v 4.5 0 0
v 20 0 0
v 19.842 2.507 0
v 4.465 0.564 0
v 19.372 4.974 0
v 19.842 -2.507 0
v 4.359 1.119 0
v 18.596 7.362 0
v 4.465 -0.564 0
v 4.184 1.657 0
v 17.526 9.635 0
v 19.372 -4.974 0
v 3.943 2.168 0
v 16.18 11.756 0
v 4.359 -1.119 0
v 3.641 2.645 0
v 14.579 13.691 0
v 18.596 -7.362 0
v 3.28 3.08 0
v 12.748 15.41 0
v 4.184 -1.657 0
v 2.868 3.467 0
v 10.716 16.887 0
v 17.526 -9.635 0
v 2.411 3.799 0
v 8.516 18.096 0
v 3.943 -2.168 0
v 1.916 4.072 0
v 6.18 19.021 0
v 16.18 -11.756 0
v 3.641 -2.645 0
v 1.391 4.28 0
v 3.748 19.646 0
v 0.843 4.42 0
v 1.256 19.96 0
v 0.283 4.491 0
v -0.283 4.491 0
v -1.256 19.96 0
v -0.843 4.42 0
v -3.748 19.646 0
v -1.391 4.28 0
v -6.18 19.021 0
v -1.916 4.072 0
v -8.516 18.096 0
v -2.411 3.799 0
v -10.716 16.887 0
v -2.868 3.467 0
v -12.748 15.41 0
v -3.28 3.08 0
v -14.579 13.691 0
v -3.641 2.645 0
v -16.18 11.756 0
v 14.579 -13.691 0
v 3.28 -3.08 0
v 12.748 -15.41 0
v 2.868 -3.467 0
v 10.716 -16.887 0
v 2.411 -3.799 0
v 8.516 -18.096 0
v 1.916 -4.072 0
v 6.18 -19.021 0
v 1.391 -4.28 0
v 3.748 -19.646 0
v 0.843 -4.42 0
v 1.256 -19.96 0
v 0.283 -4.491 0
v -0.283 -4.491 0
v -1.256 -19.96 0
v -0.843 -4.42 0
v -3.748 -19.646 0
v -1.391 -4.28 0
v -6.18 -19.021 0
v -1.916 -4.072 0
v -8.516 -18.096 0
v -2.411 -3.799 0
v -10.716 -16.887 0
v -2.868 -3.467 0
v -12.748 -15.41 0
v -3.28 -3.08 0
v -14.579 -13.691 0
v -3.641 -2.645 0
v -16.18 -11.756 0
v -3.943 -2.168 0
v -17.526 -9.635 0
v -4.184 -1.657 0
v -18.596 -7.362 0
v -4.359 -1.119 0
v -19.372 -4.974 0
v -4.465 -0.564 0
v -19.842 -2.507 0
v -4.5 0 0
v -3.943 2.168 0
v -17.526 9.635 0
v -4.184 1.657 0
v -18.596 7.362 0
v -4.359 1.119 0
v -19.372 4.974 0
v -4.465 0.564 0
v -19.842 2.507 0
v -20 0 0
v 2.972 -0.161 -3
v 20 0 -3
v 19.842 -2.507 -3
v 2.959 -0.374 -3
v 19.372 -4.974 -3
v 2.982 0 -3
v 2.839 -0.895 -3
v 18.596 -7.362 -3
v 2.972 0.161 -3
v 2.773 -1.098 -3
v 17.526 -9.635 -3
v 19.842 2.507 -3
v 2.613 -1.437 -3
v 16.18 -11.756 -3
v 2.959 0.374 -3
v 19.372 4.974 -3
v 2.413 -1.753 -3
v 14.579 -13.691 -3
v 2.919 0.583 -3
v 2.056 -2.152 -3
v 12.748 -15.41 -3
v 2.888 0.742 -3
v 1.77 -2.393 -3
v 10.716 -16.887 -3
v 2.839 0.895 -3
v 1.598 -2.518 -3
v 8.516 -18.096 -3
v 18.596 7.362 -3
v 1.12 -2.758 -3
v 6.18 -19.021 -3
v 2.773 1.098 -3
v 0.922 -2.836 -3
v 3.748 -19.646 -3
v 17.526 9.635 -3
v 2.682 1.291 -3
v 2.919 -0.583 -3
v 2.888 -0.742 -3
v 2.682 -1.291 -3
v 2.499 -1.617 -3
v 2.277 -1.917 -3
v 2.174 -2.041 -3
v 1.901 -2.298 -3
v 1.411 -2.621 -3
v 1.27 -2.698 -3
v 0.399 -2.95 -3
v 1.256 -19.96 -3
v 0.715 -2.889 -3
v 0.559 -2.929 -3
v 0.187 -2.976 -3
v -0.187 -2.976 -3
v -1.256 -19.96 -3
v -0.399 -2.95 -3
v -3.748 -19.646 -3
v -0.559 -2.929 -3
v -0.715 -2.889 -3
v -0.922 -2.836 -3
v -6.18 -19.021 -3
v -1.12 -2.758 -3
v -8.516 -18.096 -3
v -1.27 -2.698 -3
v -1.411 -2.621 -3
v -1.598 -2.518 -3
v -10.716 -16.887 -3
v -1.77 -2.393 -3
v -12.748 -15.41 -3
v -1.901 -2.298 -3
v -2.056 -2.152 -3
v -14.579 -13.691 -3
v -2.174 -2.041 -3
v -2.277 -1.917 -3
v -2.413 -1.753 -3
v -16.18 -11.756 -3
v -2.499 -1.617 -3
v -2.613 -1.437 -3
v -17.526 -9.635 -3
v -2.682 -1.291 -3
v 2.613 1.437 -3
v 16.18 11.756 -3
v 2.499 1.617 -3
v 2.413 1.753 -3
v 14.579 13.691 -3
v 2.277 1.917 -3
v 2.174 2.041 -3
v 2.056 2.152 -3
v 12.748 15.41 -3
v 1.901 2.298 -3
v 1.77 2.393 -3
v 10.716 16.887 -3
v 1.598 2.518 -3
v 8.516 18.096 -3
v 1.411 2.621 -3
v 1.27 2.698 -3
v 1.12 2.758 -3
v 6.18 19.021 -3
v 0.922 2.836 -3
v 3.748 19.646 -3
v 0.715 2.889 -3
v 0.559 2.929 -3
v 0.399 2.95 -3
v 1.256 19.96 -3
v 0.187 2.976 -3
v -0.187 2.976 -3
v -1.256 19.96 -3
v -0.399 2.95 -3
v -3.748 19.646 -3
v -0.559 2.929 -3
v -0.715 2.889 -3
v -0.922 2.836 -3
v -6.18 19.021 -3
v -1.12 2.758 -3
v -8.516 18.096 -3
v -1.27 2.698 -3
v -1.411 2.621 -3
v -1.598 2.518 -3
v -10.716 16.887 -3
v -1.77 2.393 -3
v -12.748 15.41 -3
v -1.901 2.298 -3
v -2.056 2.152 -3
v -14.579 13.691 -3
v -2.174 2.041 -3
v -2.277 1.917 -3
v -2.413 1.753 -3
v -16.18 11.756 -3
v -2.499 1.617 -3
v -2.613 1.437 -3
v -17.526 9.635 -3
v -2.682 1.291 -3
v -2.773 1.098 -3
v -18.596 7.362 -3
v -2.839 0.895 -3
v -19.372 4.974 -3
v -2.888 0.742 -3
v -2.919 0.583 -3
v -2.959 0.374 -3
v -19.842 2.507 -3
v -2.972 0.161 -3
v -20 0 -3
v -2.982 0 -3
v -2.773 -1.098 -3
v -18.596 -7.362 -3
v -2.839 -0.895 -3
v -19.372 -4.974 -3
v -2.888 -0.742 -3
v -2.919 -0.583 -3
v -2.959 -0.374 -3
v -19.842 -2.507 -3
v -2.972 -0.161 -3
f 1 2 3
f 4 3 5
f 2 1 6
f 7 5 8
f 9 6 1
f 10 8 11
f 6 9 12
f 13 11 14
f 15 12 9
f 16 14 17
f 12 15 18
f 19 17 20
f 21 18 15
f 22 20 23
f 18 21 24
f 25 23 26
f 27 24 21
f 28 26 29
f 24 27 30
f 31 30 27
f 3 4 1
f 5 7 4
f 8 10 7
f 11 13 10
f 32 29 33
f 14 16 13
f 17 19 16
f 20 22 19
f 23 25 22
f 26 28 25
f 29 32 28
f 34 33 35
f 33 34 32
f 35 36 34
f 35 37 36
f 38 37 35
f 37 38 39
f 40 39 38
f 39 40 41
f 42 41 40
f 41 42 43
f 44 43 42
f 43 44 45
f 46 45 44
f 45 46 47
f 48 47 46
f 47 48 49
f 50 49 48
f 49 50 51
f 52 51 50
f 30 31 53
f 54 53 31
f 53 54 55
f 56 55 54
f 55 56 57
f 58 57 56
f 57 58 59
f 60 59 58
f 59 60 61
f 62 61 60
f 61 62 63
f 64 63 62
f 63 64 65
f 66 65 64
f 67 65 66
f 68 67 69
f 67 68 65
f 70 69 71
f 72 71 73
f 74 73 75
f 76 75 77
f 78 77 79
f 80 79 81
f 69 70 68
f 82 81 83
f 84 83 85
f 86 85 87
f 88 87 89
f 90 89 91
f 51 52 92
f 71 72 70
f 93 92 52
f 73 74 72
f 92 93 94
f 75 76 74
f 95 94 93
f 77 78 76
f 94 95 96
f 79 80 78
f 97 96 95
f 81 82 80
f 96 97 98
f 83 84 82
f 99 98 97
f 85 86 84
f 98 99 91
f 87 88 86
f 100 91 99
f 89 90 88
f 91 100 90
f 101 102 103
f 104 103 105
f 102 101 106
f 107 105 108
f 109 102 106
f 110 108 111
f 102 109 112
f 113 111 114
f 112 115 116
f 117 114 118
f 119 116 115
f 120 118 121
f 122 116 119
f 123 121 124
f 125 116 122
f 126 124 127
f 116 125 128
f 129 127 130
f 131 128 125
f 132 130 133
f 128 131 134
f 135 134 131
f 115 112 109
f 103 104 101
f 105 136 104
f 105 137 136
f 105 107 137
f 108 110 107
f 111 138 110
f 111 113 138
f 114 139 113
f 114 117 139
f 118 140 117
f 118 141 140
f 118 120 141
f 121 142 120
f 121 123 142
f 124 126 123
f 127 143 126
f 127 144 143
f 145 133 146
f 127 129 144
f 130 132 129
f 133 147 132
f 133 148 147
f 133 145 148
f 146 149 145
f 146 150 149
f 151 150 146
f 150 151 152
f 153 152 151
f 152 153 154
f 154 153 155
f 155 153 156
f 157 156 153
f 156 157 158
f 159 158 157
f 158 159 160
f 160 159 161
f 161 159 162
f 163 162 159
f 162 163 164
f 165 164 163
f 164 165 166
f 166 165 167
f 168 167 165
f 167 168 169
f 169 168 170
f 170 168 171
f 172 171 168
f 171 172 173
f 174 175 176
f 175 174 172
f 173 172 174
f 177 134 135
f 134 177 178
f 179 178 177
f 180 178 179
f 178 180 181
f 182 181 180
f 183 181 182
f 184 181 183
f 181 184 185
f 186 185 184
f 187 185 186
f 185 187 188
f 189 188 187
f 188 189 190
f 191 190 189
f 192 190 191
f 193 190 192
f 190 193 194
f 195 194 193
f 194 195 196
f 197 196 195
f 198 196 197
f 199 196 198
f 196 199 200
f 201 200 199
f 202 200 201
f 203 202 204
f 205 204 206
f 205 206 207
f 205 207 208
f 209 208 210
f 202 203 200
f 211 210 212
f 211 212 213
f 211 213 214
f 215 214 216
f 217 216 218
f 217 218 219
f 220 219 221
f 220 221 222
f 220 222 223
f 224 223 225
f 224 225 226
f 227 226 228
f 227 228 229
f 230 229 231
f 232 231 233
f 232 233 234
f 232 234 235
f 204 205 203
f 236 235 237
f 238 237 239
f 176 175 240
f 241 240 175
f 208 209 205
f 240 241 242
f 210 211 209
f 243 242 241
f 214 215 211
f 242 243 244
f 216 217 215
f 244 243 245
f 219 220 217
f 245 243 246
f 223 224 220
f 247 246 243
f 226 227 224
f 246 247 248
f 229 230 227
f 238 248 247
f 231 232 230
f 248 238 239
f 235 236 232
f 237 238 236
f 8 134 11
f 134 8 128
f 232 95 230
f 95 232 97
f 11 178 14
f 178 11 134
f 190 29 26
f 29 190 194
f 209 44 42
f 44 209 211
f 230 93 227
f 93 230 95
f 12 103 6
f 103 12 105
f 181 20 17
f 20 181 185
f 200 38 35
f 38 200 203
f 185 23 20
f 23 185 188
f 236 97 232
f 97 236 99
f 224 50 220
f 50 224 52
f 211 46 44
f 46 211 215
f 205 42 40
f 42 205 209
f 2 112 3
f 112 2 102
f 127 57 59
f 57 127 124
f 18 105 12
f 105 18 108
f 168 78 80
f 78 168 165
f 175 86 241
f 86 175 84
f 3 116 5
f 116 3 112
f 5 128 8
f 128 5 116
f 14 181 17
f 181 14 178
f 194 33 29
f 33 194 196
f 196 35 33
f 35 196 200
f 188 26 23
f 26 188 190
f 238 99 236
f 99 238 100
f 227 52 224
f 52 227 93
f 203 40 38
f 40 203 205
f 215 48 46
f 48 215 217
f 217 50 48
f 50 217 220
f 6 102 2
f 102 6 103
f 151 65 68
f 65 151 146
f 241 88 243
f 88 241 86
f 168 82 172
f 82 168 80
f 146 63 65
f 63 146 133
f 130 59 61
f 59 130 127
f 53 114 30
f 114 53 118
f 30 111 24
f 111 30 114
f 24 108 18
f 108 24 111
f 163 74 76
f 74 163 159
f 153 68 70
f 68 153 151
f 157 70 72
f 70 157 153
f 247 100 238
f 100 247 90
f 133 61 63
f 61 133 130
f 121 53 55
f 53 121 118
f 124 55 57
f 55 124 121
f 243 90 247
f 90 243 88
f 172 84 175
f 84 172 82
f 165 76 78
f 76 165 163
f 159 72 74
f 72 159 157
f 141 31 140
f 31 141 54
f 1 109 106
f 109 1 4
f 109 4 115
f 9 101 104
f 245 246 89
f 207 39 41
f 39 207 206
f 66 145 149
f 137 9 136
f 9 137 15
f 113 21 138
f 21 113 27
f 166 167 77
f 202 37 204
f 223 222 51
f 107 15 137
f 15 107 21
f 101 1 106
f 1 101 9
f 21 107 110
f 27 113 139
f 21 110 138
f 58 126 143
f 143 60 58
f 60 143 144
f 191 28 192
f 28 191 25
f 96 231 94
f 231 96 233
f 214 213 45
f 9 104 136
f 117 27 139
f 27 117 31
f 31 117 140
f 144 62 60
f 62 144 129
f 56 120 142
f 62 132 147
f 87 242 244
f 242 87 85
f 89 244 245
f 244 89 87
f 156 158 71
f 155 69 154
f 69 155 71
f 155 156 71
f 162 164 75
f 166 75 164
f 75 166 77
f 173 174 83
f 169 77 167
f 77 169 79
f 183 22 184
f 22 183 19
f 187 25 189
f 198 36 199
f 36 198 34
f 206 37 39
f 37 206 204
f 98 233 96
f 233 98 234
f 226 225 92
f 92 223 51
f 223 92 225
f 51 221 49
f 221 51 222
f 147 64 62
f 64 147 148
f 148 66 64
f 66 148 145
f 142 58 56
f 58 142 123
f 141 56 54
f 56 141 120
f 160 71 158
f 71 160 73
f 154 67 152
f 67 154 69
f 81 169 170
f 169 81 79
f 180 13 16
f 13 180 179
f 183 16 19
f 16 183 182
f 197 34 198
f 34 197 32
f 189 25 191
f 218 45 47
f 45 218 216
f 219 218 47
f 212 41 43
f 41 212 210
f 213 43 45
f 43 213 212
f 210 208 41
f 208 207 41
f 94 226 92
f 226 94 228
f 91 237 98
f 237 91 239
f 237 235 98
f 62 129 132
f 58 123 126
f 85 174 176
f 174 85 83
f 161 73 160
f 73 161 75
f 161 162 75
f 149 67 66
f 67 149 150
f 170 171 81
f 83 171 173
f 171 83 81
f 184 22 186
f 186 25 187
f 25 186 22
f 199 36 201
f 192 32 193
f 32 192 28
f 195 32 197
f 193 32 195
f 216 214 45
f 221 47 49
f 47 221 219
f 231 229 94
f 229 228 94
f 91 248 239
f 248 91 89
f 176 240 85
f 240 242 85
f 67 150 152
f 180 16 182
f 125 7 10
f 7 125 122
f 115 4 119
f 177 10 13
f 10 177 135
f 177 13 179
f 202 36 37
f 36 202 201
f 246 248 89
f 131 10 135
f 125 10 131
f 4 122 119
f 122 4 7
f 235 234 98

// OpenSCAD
$fn = 50;


difference() {
	union() {
		translate(v = [0, 0, -3.0000000000]) {
			cylinder(h = 3, r = 10.0000000000);
		}
		translate(v = [0, 0, -3.0000000000]) {
			cylinder(h = 3, r = 20.0000000000);
		}
	}
	union() {
		translate(v = [0, 0, 0]) {
			rotate(a = [0, 0, 0]) {
				difference() {
					union() {
						#translate(v = [0, 0, -3.0000000000]) {
							cylinder(h = 3, r = 2.2500000000);
						}
						#translate(v = [0, 0, -4.2000000000]) {
							cylinder(h = 4.2000000000, r = 10.0000000000, r1 = 2.3750000000, r2 = 4.5000000000);
						}
						#translate(v = [0, 0, -3.0000000000]) {
							cylinder(h = 3, r = 2.3750000000);
						}
						#translate(v = [0, 0, -3.0000000000]) {
							cylinder(h = 3, r = 2.2500000000);
						}
					}
					union();
				}
			}
		}
	}
}
